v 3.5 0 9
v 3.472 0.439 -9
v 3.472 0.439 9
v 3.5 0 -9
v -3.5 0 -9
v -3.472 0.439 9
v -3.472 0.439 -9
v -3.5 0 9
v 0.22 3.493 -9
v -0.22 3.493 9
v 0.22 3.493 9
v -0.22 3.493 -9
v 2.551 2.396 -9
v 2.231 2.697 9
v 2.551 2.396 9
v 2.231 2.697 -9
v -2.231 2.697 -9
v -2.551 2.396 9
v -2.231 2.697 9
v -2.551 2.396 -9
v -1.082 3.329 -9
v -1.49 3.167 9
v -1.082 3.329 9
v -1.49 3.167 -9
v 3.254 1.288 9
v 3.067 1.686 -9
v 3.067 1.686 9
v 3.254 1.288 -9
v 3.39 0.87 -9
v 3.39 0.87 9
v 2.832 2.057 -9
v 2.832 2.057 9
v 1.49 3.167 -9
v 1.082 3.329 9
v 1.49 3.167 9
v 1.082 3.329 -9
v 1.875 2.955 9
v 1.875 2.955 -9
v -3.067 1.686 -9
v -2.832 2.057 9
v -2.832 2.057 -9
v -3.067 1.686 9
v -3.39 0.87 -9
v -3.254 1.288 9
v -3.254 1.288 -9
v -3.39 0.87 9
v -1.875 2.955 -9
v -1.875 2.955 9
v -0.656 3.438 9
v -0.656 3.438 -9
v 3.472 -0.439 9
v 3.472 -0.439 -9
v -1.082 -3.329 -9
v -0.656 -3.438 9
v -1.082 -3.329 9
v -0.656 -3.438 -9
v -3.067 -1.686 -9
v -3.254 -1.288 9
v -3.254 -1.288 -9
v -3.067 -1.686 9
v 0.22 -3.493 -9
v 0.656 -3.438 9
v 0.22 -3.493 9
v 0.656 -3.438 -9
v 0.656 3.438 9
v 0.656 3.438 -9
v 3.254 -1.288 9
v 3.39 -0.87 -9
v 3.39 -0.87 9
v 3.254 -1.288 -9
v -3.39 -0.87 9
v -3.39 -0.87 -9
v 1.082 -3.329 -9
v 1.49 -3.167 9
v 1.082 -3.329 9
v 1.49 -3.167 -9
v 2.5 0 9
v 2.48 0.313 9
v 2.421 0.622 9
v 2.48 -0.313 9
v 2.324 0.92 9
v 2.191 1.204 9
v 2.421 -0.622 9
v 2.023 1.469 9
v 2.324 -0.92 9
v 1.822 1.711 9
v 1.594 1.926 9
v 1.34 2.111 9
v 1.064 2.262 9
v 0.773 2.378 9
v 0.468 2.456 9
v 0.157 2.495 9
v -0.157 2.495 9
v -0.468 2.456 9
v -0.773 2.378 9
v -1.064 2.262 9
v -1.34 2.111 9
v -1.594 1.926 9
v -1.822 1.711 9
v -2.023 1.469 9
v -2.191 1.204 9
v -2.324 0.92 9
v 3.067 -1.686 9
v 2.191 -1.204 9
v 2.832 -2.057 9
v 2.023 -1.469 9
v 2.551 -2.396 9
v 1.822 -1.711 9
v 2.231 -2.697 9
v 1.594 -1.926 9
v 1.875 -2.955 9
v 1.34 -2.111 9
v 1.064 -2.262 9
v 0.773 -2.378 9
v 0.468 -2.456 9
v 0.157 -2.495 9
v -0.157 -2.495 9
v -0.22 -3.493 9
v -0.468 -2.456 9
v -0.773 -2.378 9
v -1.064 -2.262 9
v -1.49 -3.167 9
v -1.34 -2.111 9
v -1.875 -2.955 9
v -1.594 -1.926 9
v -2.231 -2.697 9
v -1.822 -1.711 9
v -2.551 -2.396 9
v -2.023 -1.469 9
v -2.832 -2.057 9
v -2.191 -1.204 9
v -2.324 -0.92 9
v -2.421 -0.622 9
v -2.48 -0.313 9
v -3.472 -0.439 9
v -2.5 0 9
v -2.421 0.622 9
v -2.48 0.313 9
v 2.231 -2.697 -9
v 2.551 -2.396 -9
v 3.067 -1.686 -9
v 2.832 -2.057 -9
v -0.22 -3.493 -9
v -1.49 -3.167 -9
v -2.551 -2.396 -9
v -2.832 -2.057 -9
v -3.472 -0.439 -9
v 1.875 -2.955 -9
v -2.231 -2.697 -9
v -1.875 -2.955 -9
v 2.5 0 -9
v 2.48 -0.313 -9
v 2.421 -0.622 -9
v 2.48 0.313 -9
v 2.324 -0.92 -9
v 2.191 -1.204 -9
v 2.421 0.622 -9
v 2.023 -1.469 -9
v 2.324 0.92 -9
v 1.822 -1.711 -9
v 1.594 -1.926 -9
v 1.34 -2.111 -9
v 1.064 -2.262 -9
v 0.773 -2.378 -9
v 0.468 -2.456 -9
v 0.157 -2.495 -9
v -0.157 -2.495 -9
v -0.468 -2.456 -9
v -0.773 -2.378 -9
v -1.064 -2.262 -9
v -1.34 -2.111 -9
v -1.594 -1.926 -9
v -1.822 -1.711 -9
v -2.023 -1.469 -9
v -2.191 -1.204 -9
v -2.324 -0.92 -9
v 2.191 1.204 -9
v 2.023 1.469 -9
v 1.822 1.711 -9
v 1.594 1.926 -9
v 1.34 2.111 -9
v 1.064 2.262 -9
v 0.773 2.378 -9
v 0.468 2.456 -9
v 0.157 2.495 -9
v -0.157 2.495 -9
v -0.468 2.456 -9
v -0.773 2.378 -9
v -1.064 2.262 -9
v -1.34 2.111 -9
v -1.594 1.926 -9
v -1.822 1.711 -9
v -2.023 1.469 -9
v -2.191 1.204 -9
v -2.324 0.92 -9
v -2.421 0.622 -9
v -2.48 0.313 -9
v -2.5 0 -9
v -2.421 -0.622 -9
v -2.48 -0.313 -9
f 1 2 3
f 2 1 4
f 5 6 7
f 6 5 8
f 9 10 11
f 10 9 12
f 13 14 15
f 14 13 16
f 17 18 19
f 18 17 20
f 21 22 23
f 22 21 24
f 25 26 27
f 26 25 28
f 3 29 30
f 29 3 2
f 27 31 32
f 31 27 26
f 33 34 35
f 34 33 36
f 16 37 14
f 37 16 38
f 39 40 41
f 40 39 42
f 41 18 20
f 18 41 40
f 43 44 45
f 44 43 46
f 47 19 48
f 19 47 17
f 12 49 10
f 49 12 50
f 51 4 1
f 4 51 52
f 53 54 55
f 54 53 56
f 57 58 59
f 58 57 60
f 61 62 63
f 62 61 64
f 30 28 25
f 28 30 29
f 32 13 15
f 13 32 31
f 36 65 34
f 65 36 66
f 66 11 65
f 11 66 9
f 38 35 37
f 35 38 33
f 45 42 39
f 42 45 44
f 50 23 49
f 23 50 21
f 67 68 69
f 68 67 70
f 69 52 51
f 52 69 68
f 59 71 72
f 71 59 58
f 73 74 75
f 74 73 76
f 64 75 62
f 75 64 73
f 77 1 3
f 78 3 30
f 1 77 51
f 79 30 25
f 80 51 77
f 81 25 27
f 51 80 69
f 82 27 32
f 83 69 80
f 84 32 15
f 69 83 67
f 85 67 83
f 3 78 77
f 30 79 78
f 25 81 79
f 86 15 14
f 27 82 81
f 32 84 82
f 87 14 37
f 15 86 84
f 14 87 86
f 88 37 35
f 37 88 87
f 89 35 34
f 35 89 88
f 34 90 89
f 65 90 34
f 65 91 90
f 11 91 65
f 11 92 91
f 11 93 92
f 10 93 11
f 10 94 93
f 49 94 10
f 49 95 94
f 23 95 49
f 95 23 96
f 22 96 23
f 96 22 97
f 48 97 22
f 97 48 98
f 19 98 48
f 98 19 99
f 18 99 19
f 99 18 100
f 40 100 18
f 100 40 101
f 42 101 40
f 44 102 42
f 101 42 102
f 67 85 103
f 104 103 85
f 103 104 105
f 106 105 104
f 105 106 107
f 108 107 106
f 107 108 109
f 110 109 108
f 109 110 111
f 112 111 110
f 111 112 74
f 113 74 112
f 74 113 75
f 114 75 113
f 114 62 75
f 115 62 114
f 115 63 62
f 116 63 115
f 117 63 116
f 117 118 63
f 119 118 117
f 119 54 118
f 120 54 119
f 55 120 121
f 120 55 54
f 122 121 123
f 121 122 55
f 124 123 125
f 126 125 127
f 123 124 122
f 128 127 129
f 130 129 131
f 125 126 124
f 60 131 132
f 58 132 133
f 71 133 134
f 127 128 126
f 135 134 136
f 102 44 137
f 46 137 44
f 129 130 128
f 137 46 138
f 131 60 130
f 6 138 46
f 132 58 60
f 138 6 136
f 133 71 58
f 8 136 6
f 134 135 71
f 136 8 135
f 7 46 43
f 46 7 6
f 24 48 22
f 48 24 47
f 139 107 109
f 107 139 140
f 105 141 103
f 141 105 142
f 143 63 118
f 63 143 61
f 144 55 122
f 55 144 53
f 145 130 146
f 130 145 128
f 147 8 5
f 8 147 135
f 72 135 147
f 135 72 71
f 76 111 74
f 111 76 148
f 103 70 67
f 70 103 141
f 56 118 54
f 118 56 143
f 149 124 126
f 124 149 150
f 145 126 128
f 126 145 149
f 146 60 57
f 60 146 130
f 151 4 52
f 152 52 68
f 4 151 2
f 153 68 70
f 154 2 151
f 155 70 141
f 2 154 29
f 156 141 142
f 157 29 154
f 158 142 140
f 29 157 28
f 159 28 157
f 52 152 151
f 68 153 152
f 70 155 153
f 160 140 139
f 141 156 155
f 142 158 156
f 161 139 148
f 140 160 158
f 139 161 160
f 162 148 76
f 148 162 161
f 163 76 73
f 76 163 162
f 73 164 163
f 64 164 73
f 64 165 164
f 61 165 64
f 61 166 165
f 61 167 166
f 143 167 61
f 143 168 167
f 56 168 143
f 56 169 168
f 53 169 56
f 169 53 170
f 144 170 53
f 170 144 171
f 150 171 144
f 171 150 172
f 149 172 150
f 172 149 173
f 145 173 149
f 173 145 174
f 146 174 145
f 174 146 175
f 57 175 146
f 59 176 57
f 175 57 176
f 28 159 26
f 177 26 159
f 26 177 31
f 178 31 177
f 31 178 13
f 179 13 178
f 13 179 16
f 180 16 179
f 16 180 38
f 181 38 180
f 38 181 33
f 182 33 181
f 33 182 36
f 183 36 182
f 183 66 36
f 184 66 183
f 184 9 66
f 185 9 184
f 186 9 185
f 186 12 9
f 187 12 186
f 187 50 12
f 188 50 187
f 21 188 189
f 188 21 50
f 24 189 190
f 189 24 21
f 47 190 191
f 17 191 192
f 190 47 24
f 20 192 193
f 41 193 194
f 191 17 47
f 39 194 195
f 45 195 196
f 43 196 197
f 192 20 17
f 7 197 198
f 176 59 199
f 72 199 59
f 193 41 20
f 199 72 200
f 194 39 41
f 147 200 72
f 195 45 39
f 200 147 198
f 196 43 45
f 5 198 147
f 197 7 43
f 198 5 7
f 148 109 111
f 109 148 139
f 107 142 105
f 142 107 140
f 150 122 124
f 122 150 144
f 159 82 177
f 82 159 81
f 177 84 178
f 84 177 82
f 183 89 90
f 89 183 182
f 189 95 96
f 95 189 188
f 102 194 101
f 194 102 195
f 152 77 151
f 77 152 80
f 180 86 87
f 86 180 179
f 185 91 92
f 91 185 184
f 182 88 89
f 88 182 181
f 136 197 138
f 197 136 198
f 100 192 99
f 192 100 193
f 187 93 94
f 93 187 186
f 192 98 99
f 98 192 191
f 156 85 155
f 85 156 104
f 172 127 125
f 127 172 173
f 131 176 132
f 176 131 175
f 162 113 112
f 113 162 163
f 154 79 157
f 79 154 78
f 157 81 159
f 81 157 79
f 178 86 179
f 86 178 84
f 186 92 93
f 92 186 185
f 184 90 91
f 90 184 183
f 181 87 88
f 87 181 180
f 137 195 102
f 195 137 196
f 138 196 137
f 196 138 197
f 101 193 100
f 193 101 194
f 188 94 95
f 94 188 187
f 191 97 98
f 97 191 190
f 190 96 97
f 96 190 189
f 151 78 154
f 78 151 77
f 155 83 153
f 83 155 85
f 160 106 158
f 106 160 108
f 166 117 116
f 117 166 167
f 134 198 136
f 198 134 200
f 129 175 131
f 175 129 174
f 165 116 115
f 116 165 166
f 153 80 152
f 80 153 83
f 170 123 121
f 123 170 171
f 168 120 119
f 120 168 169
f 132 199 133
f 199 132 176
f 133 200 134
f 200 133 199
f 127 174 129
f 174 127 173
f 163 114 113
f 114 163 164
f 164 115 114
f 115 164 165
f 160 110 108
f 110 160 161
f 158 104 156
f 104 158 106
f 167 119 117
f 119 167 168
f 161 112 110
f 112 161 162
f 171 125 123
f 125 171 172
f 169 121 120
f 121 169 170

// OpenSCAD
$fn = 50;


difference() {
	union() {
		translate(v = [0, 0, -9.0000000000]) {
			cylinder(h = 18, r = 3.5000000000);
		}
	}
	union() {
		translate(v = [0, 0, -100.0000000000]) {
			cylinder(h = 200, r = 2.5000000000);
		}
	}
}
